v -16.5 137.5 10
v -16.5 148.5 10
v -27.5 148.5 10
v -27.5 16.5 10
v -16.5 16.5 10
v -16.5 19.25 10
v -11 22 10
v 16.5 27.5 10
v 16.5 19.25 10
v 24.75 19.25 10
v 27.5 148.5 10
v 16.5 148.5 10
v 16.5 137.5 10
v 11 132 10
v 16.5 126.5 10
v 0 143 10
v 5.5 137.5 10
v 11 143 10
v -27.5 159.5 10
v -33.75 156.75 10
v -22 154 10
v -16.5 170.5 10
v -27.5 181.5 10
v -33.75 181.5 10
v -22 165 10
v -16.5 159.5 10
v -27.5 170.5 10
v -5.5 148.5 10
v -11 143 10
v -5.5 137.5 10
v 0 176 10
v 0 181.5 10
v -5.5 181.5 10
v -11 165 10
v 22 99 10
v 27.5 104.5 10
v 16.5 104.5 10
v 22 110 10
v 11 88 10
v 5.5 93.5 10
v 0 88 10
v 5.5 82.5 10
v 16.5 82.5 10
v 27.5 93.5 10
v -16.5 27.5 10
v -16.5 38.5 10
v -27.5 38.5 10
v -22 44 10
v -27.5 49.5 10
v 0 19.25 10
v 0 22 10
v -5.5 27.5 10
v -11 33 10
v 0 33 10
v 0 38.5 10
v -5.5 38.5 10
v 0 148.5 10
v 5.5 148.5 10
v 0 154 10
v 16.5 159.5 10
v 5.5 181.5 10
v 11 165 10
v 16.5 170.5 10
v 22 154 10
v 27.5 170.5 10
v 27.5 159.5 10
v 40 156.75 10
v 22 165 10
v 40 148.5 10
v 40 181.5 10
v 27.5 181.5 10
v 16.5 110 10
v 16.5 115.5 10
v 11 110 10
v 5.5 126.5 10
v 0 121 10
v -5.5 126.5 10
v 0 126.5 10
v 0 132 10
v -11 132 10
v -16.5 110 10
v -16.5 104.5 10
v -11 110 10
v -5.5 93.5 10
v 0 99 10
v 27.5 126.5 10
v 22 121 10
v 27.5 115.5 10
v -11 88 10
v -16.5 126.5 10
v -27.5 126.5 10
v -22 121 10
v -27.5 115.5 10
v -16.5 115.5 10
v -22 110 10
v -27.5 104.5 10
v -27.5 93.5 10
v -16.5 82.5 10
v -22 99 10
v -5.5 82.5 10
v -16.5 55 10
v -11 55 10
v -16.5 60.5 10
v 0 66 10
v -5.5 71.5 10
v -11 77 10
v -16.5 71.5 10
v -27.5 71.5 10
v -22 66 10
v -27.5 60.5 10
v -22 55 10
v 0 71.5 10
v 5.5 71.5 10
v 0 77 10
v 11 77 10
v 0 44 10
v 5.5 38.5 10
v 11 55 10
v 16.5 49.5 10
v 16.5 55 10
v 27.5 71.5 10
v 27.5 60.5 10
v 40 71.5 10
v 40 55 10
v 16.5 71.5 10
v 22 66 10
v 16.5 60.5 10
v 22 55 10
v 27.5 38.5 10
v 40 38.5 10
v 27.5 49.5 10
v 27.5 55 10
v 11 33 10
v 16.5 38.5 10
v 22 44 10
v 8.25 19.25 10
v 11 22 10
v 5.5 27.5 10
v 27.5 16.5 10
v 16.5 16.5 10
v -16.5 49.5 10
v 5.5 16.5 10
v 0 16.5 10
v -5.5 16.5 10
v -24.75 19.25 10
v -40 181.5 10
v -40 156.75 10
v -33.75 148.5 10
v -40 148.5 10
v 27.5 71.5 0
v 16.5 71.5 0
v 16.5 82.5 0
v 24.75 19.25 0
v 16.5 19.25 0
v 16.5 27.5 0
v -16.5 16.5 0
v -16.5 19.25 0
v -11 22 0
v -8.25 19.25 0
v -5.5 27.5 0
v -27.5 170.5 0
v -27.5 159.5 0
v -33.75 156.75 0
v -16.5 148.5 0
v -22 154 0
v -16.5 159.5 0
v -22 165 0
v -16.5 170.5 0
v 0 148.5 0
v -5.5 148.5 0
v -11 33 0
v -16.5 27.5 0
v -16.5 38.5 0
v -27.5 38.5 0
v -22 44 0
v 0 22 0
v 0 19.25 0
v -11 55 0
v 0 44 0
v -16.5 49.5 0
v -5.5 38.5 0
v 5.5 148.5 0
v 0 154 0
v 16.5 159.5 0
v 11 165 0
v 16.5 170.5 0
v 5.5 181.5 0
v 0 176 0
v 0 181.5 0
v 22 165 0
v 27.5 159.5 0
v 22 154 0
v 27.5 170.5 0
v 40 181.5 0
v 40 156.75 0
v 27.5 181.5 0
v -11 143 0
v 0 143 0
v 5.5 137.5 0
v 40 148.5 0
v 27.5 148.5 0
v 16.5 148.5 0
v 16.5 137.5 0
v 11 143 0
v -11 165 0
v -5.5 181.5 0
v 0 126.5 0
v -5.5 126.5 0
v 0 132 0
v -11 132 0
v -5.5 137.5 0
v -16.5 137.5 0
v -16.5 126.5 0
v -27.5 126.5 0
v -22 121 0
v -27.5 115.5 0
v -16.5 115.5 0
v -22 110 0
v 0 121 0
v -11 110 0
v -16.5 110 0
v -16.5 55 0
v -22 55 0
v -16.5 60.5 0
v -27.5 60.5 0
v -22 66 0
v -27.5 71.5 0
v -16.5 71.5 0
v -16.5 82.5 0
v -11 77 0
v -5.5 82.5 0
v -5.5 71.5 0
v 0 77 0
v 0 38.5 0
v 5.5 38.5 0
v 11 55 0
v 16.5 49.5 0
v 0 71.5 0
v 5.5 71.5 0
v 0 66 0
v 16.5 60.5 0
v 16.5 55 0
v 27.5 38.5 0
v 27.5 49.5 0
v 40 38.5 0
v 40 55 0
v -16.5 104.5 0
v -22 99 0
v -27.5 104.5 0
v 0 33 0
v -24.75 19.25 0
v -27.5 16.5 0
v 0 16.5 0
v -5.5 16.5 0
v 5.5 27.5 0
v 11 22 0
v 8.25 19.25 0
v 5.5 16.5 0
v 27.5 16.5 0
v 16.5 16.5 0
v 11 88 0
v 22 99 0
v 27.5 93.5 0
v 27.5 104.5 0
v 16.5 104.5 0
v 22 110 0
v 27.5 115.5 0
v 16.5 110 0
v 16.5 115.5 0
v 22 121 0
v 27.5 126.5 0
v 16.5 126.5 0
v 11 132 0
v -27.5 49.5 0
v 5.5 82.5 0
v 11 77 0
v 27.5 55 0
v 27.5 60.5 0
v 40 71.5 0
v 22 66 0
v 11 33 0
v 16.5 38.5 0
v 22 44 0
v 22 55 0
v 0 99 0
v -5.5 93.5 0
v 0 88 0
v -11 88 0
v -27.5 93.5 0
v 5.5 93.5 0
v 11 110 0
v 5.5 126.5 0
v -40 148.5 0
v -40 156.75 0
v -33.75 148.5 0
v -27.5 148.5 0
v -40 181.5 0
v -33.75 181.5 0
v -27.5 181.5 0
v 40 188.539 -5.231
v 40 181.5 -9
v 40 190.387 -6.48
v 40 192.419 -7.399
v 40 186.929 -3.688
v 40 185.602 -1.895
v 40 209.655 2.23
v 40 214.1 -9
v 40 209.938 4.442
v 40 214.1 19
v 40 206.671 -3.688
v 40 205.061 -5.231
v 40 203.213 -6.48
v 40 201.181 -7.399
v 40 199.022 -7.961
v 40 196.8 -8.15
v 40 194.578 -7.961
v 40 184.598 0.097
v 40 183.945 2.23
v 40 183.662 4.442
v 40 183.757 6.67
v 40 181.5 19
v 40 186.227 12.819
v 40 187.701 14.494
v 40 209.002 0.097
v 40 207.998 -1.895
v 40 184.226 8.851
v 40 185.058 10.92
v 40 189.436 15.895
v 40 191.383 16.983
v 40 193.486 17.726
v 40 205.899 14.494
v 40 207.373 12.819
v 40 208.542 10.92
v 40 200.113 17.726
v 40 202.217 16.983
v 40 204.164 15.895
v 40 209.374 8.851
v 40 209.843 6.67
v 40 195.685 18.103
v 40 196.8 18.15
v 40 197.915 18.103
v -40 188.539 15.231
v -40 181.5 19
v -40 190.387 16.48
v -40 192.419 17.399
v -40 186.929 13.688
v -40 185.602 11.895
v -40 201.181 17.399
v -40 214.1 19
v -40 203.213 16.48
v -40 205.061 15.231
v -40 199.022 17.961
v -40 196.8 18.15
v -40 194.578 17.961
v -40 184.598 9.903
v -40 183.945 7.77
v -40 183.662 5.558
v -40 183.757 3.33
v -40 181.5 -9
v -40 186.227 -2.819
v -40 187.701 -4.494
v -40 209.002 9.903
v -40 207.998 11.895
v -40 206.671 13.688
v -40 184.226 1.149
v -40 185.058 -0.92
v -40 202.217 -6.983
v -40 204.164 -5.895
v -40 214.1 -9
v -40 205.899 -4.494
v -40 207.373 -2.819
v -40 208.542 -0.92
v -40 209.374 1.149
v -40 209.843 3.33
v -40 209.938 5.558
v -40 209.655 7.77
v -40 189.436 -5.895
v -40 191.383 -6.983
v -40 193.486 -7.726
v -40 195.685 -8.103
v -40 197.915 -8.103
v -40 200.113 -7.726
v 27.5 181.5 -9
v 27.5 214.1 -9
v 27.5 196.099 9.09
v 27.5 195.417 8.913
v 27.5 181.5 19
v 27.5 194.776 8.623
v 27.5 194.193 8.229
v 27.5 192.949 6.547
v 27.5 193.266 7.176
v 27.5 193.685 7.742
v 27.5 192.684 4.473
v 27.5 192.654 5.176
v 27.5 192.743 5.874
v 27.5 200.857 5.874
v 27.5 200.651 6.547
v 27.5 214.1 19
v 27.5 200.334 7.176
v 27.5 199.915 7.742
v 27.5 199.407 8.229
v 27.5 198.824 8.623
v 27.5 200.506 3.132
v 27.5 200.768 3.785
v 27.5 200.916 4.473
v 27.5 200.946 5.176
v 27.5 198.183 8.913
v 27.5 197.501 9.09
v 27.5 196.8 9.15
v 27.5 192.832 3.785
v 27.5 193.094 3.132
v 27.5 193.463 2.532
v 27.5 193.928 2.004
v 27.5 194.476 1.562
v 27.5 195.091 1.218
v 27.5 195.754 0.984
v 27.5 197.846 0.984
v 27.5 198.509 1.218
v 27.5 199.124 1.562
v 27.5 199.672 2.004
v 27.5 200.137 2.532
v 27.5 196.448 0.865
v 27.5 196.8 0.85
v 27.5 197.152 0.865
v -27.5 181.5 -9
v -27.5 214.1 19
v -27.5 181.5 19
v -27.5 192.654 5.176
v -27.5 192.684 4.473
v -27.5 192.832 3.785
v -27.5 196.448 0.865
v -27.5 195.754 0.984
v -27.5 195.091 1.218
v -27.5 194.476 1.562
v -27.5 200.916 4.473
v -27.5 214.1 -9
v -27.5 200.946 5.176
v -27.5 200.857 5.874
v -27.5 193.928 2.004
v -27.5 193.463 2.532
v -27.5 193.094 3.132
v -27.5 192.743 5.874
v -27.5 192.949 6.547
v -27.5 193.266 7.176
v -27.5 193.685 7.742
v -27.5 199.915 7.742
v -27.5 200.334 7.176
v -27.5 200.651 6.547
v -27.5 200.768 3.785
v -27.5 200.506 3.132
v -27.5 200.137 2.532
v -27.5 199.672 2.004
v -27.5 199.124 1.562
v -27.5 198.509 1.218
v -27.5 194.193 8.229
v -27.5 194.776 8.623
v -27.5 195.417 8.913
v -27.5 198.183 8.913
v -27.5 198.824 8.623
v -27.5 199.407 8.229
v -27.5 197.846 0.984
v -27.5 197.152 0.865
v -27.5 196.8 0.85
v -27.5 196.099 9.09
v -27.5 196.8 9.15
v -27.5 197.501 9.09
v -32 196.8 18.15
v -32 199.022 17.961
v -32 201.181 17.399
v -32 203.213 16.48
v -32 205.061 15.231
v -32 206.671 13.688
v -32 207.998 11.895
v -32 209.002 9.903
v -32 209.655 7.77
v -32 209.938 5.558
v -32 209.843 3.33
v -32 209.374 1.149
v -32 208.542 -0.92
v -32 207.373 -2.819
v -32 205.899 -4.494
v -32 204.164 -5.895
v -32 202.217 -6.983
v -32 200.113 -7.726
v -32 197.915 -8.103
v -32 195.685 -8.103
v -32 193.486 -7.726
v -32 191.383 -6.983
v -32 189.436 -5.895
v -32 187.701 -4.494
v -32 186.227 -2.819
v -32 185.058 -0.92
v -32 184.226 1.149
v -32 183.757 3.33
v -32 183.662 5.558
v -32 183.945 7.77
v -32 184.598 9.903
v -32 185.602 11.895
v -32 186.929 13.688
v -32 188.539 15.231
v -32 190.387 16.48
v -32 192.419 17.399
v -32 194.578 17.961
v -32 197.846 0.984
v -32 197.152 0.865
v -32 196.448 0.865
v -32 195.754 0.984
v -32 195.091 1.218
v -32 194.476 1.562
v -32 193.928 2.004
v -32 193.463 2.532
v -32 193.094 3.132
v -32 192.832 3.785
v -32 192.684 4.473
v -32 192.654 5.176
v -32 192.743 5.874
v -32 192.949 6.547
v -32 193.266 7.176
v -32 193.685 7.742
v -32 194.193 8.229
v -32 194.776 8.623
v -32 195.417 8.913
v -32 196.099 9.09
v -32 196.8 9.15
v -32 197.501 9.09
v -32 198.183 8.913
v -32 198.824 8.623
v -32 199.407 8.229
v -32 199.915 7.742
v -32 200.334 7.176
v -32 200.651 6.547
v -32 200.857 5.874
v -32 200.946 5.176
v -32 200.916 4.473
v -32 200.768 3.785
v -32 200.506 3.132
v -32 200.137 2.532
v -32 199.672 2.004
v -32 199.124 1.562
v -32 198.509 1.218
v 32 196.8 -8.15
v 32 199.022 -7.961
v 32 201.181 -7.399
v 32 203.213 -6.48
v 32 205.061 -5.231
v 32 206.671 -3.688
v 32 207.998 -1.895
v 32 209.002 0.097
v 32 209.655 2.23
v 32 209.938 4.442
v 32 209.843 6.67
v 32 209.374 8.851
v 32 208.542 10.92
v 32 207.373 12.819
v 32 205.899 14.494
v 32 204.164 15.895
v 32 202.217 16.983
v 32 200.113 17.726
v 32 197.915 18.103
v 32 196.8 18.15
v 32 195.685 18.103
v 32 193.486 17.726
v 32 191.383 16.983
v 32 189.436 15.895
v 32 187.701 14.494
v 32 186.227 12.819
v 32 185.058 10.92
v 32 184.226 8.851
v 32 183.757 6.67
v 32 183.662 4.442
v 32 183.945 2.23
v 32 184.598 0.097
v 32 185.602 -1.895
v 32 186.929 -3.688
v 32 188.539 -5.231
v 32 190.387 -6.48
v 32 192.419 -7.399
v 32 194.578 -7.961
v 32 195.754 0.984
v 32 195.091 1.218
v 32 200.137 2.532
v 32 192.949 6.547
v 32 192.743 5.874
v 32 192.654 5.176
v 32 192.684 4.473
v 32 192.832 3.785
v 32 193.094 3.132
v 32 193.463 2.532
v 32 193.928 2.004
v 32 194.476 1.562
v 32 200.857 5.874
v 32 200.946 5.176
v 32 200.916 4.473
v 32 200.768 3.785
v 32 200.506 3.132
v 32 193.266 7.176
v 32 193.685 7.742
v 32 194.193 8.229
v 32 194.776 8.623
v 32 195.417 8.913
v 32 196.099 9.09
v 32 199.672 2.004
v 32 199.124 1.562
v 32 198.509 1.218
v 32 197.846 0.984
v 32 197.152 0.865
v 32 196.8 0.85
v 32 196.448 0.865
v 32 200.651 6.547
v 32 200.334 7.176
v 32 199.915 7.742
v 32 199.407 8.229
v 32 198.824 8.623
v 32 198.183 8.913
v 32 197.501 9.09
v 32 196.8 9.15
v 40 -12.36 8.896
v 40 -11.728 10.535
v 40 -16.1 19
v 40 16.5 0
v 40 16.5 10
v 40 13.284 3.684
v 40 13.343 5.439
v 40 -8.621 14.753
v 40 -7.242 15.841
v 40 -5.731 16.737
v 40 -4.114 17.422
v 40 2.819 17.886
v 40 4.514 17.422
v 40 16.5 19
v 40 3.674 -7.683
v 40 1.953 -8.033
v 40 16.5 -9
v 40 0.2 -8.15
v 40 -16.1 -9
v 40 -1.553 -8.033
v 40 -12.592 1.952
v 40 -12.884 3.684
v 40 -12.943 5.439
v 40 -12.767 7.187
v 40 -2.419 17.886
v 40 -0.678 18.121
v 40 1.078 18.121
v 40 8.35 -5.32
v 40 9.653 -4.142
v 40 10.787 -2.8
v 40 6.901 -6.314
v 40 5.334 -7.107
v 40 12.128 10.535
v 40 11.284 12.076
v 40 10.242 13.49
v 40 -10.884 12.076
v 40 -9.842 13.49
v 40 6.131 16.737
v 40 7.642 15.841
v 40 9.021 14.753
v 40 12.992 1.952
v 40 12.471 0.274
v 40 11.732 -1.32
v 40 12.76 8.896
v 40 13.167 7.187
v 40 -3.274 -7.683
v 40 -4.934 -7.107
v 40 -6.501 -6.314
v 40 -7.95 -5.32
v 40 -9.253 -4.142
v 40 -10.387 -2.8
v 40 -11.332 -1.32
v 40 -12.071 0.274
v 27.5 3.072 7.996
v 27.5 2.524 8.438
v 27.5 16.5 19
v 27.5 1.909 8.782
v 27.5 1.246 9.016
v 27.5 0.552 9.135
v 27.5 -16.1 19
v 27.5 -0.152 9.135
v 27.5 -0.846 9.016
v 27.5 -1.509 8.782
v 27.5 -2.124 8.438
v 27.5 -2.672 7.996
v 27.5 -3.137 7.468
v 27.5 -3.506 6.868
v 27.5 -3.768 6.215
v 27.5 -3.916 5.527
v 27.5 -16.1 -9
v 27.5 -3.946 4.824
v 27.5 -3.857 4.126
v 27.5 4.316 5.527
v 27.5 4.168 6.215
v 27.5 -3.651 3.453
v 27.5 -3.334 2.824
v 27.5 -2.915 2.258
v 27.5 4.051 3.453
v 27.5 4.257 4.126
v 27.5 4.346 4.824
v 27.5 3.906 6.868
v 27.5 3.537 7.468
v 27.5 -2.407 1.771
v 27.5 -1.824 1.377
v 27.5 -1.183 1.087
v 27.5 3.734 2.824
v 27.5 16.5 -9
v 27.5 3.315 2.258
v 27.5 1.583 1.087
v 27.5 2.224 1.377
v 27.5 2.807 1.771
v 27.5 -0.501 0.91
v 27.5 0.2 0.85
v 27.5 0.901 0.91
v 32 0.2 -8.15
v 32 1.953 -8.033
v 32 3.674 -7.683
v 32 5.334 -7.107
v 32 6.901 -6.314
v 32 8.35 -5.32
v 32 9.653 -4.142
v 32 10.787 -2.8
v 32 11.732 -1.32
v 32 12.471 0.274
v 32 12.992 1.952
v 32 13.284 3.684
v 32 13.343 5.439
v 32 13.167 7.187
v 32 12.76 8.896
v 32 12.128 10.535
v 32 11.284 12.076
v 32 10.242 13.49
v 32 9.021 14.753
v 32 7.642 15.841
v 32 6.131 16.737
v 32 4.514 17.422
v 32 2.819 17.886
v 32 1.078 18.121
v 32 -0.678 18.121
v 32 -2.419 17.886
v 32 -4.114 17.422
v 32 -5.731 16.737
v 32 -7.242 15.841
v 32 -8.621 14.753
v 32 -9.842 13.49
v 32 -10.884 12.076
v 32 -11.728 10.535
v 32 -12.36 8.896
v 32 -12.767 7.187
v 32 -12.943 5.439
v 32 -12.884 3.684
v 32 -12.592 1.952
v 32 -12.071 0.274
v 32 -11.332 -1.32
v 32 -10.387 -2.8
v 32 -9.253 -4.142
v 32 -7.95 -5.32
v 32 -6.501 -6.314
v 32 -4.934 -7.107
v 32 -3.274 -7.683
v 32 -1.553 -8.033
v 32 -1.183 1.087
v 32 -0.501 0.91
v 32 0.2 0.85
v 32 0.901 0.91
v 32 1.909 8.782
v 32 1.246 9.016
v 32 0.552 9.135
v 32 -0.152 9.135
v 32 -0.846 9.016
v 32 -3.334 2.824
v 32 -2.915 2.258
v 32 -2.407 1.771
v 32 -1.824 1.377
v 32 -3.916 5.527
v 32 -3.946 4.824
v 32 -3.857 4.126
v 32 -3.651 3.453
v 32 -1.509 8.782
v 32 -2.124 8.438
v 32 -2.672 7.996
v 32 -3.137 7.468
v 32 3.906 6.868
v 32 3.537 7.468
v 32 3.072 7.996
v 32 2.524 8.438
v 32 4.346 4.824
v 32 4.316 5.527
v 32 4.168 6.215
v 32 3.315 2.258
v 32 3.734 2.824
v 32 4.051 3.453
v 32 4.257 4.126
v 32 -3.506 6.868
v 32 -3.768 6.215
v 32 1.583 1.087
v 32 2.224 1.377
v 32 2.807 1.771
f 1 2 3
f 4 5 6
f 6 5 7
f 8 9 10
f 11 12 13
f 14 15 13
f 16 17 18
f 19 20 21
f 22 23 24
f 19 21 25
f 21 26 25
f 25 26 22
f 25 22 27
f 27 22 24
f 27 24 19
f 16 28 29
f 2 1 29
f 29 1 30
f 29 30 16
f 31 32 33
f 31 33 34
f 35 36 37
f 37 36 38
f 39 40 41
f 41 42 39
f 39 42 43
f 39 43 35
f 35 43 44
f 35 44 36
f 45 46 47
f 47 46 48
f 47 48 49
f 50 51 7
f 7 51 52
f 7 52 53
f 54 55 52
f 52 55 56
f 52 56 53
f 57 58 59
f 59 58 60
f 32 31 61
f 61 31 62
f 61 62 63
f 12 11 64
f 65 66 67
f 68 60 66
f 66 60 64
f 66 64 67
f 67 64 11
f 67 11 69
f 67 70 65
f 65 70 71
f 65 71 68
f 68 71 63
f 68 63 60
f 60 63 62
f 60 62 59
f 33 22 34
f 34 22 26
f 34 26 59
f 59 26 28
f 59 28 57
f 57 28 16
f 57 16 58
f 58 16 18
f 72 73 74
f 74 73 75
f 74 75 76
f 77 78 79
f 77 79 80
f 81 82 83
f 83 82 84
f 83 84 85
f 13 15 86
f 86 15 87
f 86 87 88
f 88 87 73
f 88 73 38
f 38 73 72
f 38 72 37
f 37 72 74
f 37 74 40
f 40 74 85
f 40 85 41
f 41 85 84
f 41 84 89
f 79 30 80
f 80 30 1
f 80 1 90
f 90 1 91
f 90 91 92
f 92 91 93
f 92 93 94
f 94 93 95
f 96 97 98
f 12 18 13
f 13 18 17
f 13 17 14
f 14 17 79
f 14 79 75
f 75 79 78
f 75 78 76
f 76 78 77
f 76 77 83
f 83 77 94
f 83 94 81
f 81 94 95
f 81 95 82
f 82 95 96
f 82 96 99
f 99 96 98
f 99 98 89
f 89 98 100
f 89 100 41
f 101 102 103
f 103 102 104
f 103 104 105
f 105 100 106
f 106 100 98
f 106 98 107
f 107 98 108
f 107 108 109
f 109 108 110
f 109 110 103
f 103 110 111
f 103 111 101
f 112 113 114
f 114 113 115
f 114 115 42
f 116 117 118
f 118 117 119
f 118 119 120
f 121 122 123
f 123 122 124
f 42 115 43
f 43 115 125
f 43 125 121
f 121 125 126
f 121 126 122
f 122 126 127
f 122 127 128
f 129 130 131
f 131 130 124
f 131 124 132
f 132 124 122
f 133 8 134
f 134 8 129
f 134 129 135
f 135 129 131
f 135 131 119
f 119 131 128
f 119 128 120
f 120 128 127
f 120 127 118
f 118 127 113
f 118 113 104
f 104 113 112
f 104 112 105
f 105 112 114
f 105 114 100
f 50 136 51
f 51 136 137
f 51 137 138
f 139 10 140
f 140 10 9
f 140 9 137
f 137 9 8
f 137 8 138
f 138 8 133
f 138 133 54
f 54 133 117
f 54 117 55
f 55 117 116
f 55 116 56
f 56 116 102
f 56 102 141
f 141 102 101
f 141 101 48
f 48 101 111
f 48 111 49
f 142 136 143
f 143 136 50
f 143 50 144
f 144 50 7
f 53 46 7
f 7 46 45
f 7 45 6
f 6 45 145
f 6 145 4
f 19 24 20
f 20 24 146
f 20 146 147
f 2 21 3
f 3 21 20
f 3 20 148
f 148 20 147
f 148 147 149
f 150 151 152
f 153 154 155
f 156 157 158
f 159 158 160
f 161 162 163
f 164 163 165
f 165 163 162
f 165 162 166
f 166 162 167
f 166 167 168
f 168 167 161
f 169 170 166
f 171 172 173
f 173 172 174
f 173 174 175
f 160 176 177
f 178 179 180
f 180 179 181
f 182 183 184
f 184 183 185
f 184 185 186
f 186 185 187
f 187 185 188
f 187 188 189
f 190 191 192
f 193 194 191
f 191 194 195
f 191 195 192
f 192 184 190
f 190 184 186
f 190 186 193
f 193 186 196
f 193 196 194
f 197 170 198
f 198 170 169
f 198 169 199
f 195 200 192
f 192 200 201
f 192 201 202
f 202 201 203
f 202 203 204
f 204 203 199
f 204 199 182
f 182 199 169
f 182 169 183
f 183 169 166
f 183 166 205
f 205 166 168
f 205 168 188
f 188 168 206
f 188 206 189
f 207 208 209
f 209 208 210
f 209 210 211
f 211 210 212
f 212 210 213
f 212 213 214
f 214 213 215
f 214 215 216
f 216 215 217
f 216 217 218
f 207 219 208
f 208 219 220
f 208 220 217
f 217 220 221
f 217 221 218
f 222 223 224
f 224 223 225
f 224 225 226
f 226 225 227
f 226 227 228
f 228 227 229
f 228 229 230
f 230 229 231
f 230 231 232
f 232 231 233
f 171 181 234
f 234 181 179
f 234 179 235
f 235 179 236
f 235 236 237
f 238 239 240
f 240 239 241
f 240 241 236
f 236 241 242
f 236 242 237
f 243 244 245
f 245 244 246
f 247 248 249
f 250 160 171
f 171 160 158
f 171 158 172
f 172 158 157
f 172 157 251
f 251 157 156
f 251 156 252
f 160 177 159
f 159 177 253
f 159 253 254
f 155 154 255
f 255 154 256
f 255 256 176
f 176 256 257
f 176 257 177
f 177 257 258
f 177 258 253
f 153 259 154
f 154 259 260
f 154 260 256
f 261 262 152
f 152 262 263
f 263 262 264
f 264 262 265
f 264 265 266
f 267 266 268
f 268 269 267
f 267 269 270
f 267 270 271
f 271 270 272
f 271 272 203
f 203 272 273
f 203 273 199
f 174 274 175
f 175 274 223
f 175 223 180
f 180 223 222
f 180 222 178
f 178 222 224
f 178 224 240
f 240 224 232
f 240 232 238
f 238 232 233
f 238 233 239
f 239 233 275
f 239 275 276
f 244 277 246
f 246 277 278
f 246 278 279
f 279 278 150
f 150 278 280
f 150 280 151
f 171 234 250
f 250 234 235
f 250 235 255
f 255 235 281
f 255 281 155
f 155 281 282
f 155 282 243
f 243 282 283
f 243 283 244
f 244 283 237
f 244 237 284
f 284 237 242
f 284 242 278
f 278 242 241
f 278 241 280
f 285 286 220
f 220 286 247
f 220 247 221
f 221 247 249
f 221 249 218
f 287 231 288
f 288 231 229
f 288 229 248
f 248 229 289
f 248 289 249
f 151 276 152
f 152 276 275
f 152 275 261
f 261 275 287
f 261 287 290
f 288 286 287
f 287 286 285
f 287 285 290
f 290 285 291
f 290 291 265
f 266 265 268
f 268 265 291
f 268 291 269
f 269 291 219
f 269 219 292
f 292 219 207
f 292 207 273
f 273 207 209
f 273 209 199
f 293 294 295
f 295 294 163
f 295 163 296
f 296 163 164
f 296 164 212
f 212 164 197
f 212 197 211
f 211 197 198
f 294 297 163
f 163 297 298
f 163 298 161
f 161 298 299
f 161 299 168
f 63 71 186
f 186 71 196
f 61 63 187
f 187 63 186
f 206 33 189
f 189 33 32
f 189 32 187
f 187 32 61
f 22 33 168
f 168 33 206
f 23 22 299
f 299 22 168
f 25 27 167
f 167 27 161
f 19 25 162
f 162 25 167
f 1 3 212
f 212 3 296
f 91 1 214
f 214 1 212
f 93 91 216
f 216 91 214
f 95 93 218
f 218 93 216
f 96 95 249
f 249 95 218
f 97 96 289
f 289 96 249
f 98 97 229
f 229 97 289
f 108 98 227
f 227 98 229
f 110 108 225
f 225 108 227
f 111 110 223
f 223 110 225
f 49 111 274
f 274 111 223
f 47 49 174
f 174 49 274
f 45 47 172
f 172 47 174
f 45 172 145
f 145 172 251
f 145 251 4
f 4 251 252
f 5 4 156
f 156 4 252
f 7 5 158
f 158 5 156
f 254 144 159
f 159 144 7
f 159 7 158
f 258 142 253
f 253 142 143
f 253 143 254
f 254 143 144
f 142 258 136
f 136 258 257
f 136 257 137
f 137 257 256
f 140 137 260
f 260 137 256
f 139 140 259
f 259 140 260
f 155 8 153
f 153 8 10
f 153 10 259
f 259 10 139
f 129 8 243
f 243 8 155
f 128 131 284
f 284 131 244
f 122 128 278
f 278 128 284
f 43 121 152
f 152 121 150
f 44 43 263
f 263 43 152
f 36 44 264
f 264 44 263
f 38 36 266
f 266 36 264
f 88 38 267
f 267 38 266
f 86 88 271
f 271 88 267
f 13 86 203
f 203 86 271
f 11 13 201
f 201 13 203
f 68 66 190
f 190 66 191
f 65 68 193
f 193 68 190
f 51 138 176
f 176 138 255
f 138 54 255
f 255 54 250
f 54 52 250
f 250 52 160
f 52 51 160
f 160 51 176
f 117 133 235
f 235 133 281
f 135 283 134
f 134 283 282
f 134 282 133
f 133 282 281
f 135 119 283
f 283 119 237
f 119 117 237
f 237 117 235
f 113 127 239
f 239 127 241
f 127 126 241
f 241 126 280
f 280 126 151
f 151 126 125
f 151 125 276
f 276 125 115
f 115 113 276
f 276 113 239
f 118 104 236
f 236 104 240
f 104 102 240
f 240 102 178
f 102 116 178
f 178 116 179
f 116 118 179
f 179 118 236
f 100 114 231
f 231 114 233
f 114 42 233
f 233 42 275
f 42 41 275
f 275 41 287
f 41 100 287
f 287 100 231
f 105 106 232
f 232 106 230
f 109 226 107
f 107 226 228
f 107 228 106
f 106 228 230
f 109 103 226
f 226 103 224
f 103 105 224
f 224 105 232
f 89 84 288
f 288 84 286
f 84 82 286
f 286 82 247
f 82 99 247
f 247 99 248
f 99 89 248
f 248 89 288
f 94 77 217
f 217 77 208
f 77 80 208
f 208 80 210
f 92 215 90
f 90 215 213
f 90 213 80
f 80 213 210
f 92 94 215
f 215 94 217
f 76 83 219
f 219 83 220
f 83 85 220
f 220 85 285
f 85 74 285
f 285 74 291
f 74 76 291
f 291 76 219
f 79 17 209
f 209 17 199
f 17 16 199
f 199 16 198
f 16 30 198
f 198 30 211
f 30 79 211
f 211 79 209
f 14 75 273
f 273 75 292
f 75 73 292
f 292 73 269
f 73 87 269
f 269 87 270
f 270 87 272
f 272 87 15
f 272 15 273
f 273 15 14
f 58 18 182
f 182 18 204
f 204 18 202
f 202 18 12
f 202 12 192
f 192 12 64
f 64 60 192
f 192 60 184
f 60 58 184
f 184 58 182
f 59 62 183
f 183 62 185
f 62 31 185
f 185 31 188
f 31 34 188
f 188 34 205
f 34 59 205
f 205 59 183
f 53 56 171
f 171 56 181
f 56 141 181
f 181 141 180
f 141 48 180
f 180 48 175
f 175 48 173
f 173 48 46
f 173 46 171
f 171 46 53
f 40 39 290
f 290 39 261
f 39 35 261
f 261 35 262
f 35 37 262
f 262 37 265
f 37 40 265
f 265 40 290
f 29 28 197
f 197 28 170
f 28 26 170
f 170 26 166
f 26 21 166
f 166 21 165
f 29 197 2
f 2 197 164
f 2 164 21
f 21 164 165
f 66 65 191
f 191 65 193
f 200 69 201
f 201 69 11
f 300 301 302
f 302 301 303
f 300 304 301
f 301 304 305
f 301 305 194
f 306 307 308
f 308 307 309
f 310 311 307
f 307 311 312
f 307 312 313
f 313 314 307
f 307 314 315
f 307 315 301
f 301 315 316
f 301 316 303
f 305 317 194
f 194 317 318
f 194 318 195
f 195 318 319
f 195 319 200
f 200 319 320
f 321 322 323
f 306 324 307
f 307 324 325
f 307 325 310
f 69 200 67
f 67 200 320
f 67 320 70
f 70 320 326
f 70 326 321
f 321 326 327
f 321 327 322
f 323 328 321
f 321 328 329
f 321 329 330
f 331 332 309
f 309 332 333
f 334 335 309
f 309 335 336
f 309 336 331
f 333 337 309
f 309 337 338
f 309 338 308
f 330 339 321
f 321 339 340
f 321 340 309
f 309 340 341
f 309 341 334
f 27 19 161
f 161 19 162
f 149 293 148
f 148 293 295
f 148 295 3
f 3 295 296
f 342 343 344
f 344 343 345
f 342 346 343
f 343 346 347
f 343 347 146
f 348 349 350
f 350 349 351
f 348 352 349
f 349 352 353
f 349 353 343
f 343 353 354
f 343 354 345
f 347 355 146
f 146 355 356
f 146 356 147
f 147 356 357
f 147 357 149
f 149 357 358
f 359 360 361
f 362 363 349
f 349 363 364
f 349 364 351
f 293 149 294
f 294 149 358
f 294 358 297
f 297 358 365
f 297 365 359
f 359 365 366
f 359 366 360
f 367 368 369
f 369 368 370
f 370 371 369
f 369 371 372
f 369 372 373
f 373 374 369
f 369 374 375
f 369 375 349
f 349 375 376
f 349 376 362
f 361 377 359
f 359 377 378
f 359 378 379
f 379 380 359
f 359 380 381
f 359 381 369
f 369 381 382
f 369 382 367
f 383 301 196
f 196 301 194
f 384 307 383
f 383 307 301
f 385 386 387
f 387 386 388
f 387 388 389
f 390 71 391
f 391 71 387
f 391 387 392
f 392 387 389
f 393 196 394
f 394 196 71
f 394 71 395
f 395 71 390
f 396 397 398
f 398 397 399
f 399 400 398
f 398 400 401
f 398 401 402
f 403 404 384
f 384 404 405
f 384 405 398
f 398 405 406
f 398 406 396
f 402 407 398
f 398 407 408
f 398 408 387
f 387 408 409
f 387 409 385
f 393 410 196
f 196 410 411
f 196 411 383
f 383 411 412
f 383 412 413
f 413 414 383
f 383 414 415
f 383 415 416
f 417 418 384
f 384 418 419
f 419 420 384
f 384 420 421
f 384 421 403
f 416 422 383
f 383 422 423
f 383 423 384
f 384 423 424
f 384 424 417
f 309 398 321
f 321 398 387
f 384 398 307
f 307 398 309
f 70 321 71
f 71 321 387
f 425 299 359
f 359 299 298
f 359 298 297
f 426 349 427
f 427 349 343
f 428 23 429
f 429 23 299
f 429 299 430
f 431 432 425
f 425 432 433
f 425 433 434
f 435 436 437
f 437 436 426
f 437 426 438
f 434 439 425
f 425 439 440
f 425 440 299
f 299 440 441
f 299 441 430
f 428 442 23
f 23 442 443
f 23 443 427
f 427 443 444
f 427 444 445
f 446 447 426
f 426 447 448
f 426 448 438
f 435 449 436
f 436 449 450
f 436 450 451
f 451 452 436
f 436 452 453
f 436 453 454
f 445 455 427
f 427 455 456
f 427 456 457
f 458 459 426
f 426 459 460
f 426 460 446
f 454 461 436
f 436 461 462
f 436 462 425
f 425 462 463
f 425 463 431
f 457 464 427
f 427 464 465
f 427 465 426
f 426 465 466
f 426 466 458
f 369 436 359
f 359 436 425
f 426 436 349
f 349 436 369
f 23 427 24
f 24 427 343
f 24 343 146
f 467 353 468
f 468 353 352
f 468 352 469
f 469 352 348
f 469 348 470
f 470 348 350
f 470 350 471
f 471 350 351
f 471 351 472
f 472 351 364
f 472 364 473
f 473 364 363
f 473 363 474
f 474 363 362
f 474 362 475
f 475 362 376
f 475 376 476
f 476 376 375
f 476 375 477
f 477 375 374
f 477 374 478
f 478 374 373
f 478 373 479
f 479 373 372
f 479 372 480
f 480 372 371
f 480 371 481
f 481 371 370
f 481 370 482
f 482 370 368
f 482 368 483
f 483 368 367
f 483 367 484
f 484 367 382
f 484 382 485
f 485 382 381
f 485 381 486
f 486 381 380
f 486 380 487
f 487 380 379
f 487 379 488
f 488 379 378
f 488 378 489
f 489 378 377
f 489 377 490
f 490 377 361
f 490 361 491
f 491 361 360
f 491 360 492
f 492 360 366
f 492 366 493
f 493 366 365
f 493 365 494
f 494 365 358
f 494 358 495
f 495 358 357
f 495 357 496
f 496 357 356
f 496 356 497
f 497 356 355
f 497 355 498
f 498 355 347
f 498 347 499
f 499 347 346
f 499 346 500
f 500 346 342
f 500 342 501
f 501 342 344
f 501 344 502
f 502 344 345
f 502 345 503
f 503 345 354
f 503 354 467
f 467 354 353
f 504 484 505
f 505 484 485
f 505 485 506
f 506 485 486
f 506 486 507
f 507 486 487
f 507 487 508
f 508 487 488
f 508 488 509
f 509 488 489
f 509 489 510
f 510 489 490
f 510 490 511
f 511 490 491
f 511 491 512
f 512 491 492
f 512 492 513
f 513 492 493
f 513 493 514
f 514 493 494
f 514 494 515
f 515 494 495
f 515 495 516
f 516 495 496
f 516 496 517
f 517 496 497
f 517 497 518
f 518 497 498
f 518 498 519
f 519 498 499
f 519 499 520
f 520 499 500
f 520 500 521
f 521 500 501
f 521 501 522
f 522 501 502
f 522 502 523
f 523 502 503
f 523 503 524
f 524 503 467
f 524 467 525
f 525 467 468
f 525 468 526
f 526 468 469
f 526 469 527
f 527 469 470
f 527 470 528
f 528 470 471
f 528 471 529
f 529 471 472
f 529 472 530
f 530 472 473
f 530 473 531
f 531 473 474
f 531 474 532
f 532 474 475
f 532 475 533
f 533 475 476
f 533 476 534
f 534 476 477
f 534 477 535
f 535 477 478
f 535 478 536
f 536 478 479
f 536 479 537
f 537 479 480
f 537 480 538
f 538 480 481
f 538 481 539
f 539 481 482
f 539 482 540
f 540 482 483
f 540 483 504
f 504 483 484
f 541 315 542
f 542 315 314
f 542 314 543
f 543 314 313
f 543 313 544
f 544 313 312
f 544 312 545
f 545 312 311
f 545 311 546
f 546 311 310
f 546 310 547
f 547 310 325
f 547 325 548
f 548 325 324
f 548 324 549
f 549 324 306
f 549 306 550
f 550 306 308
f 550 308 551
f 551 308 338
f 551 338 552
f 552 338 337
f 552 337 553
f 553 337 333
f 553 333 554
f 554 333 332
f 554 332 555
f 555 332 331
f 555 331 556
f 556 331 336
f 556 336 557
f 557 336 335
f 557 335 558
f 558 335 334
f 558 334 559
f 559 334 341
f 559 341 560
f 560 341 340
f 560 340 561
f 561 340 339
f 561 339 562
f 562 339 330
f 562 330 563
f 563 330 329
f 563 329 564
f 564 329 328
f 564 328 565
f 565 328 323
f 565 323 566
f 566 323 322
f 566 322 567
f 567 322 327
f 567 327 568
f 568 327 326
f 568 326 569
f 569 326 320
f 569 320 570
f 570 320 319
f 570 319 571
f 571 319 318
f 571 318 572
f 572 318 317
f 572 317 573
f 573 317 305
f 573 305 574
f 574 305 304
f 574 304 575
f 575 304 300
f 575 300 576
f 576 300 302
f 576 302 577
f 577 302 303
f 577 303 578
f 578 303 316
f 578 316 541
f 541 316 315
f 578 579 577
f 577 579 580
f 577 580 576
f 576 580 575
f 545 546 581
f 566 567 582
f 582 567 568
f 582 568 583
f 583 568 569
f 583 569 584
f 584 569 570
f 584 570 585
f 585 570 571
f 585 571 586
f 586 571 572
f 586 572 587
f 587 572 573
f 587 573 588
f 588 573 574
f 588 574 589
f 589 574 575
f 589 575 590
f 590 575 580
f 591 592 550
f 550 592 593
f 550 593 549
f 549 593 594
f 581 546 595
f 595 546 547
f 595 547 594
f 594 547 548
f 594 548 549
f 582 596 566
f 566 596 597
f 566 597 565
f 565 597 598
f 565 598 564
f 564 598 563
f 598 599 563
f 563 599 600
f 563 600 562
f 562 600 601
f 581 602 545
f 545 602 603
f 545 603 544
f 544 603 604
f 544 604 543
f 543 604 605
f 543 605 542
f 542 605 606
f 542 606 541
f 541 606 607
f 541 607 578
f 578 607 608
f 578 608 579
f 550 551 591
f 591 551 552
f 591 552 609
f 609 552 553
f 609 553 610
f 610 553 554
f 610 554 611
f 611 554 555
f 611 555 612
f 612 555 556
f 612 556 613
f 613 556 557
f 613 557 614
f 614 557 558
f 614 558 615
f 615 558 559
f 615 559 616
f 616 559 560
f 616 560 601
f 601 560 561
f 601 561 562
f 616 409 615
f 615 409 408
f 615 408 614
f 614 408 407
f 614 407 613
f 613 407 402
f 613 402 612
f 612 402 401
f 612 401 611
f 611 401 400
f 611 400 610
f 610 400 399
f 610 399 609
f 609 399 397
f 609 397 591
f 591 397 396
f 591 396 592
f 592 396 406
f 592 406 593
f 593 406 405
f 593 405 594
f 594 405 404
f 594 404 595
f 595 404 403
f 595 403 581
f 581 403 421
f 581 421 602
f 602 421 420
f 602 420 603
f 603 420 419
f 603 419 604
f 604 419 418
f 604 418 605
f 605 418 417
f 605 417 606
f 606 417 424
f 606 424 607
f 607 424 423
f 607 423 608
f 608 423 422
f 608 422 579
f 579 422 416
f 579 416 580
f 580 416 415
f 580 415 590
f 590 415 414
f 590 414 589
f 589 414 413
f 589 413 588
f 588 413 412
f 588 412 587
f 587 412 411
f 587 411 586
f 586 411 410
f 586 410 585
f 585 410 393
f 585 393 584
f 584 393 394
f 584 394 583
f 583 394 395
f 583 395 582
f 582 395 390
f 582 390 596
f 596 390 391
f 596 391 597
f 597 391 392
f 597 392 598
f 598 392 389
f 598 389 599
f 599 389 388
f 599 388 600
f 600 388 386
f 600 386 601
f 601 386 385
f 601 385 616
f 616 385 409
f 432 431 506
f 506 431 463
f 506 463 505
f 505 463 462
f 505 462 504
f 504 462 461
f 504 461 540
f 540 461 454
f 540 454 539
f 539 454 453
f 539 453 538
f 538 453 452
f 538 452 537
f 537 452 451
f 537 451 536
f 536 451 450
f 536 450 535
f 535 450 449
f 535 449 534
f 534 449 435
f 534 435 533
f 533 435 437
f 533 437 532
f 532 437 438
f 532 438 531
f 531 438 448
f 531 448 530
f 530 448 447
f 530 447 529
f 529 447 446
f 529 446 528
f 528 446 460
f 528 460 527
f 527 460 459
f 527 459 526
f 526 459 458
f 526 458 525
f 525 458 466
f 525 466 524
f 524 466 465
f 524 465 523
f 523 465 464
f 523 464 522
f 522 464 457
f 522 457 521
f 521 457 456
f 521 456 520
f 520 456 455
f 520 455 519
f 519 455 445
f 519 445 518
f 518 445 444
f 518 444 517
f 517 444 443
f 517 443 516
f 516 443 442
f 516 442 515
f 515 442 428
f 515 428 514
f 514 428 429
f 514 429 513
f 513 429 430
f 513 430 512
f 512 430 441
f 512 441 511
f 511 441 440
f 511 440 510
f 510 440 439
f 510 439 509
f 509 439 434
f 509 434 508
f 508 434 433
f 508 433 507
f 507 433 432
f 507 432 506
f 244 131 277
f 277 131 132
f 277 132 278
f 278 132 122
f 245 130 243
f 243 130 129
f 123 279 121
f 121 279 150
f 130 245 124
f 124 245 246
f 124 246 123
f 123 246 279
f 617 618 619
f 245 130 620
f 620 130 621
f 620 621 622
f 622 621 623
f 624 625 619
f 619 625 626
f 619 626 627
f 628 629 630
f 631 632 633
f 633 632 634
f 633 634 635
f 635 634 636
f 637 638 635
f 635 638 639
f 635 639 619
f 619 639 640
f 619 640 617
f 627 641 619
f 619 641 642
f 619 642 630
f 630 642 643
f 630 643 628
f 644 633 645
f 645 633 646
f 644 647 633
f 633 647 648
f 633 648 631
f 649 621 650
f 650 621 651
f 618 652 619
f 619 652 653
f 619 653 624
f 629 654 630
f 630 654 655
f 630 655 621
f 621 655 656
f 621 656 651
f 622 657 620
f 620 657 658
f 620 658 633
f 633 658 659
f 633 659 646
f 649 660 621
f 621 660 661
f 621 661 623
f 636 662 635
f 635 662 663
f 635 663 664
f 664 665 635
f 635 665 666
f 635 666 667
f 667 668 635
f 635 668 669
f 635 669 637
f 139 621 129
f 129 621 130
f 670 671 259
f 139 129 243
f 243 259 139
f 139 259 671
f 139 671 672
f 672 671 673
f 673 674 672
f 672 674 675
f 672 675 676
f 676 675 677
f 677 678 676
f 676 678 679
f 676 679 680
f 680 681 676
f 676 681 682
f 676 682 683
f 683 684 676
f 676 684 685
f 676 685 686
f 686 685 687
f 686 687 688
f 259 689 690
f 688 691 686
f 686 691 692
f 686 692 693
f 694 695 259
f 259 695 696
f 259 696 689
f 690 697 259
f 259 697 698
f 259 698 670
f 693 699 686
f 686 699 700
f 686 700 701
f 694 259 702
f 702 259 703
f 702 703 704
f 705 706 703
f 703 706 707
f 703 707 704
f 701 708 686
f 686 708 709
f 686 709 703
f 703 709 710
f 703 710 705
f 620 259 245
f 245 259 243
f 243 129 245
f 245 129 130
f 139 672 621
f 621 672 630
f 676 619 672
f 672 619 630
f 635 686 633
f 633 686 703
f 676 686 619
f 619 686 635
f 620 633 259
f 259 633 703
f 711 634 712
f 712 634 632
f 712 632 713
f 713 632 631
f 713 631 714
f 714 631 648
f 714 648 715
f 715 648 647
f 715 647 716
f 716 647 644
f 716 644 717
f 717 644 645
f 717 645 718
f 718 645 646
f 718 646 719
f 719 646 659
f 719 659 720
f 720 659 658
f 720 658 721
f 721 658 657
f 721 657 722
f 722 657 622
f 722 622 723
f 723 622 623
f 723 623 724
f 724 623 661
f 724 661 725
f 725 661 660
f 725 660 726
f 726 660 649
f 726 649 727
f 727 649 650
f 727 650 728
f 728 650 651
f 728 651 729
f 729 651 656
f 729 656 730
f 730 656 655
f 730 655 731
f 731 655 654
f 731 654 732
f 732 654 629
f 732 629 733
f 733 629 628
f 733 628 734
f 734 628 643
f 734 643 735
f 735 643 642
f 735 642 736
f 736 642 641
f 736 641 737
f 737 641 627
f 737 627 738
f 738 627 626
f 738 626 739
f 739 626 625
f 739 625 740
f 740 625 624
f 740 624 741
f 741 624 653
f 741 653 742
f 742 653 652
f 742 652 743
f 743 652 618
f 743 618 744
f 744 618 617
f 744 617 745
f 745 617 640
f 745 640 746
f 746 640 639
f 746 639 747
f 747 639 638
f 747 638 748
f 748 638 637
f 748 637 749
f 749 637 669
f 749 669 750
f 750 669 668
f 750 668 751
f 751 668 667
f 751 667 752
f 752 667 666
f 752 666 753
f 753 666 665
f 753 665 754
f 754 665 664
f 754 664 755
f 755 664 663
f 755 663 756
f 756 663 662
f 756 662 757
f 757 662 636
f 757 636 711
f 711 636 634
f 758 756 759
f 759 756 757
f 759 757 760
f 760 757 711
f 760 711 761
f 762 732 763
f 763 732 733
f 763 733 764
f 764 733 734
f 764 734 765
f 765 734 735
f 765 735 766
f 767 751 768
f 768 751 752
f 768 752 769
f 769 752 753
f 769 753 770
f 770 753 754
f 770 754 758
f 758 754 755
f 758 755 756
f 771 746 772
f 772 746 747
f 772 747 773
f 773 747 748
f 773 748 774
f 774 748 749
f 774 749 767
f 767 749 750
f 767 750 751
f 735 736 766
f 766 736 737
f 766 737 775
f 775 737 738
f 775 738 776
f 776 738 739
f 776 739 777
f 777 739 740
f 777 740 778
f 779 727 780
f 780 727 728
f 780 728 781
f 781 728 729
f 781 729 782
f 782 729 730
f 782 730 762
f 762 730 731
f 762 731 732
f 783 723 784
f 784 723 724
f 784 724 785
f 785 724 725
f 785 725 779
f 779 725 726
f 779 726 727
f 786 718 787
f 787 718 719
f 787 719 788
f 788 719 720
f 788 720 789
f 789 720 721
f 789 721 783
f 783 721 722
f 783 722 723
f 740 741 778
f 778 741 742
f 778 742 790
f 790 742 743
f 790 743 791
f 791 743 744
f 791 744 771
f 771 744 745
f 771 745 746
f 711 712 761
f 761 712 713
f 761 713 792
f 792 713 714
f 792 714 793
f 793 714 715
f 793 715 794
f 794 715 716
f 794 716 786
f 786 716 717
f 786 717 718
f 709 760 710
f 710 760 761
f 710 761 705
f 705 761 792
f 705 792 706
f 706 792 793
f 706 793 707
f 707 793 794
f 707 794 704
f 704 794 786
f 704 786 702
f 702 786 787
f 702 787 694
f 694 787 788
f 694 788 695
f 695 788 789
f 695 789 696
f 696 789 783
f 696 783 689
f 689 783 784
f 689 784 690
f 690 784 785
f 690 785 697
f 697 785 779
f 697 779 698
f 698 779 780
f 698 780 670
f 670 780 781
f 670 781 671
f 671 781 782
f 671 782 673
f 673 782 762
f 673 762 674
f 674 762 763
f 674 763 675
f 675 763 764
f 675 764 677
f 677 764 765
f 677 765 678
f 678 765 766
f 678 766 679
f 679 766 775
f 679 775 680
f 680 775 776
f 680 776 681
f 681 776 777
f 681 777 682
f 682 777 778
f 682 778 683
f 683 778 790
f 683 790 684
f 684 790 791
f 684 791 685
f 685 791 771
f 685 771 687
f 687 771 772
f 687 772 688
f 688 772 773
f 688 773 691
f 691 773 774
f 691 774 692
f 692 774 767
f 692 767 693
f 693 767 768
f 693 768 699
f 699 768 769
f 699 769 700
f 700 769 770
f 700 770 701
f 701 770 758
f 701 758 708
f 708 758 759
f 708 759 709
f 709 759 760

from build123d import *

# Parameters (mm, degrees)
BOSS_EXTRUDE1_DEPTH  = 10
SKETCH3_W            = 10
SKETCH3_H            = 33.000000074
BOSS_EXTRUDE3_DEPTH  = 12.5
SKETCH4_W            = 12.5
SKETCH4_H            = 28
BOSS_EXTRUDE4_DEPTH  = 32.6
SKETCH6_R            = 13.15
CUT_EXTRUDE2_DEPTH   = 8
SKETCH7_R            = 4.15
CUT_EXTRUDE3_DEPTH   = 227.679972726
SKETCH8_W            = 10
SKETCH8_H            = 32.999999987
BOSS_EXTRUDE6_DEPTH  = 12.5
SKETCH9_W            = 12.5
SKETCH9_H            = 10
BOSS_EXTRUDE9_DEPTH  = 22
SKETCH10_W           = 12.5
SKETCH10_H           = 28
BOSS_EXTRUDE10_DEPTH = 32.6
SKETCH12_R           = 13.15
CUT_EXTRUDE4_DEPTH   = 8
SKETCH13_R           = 4.15
CUT_EXTRUDE5_DEPTH   = 8


with BuildPart() as part:
    # Sketch2 → Boss-Extrude1 (new body)
    with BuildSketch(Plane.XY):
        Polygon((-27.500000006, 170.499999994), (-27.500000006, 181.499999994), (-16.500000002, 170.499999998), (-5.499999969, 181.500000031), (5.500000025, 181.500000031), (16.500000011, 170.500000056), (27.500000013, 181.500000073), (27.500000013, 170.500000022), (22.000000007, 165.000000067), (27.500000013, 159.500000067), (27.500000013, 148.499999999), (16.500000017, 137.500000003), (27.500000013, 126.500000014), (27.500000013, 115.499999993), (22.000000001, 109.999999981), (27.500000013, 104.499999969), (27.500000013, 93.499999996), (16.500000007, 82.49999999), (27.500000013, 71.499999999), (27.500000013, 60.500000004), (22.000000008, 54.999999998), (27.500000013, 49.499999999), (27.500000013, 38.500000012), (16.499999997, 27.499999996), (27.5, 16.5), (16.500000019, 16.5), (11.000000008, 22.000000007), (5.500000001, 16.5), (-5.500000011, 16.5), (-11.000000001, 21.99999999), (-16.499999991, 16.5), (-27.5, 16.5), (-16.500000013, 27.500000002), (-27.500000006, 38.499999994), (-27.500000006, 49.499999994), (-22.000000004, 54.999999996), (-27.500000006, 60.499999994), (-27.500000006, 71.499999994), (-16.500000006, 82.500000002), (-27.500000006, 93.499999994), (-27.500000006, 104.499999994), (-22.000000034, 109.999999972), (-27.500000006, 115.499999994), (-27.500000006, 126.49999998), (-16.500000006, 137.499999995), (-27.500000006, 148.499999994), (-27.500000006, 159.499999994), (-22.000000006, 164.999999994), align=None)
        Polygon((21.999999977, 121.000000012), (16.499999976, 115.500000007), (5.499999998, 126.499999984), (11.000000002, 131.999999987), align=None, mode=Mode.SUBTRACT)
        Polygon((-22.000000007, 65.999999973), (-16.500000015, 60.499999985), (-5.499999998, 71.500000002), (-10.99999999, 76.99999999), align=None, mode=Mode.SUBTRACT)
        Polygon((-5.5e-08, 175.999999934), (10.999999921, 164.999999958), (-7e-09, 154.000000015), (-10.999999994, 164.999999995), align=None, mode=Mode.SUBTRACT)
        Polygon((21.999999912, 153.999999967), (10.999999987, 143.000000029), (5.4999999, 148.500000112), (16.499999884, 159.499999995), align=None, mode=Mode.SUBTRACT)
        Polygon((-22.000000014, 98.999999972), (-11.000000021, 87.999999991), (-5.500000115, 93.499999901), (-16.500000049, 104.499999937), align=None, mode=Mode.SUBTRACT)
        Polygon((-22.00000026, 121.000000206), (-16.50000003, 115.499999982), (-5.500000018, 126.500000007), (-11.000000188, 132.000000177), align=None, mode=Mode.SUBTRACT)
        Polygon((21.999999733, 65.999999799), (16.49999997, 60.50000003), (5.500000002, 71.499999986), (10.999999825, 76.999999808), align=None, mode=Mode.SUBTRACT)
        Polygon((-22.000000004, 153.999999986), (-11.000000013, 142.999999995), (-5.500000013, 148.500000002), (-16.5, 159.499999989), align=None, mode=Mode.SUBTRACT)
        Polygon((21.999999994, 98.999999994), (10.999999995, 87.999999995), (5.500000001, 93.499999981), (16.500000004, 104.499999985), align=None, mode=Mode.SUBTRACT)
        Polygon((-21.999999984, 43.999999999), (-11.00000001, 33.000000012), (-5.500000013, 38.500000017), (-16.499999993, 49.49999999), align=None, mode=Mode.SUBTRACT)
        Polygon((22.00000002, 44.000000003), (11.000000003, 32.999999986), (5.499999997, 38.499999988), (16.500000015, 49.500000005), align=None, mode=Mode.SUBTRACT)
        Polygon((10.999999982, 55.000000034), (-2.8e-08, 44.000000009), (-11.000000005, 54.999999978), (1.3e-08, 65.999999996), align=None, mode=Mode.SUBTRACT)
        Polygon((-11.000000013, 109.999999973), (-2.2e-08, 98.999999997), (10.999999981, 110.000000008), (2e-09, 120.999999987), align=None, mode=Mode.SUBTRACT)
        Polygon((-5.499999998, 27.499999993), (3e-09, 21.999999986), (5.500000014, 27.499999998), (9e-09, 32.999999999), align=None, mode=Mode.SUBTRACT)
        Polygon((5.499999842, 82.499999842), (-9e-09, 76.999999991), (-5.500000002, 82.499999978), (-1.23e-07, 87.999999858), align=None, mode=Mode.SUBTRACT)
        Polygon((-5.500000166, 137.500000148), (-2.4e-08, 132.000000006), (5.499999976, 137.500000013), (-1.37e-07, 143.000000126), align=None, mode=Mode.SUBTRACT)
    extrude(amount=BOSS_EXTRUDE1_DEPTH)

    # Sketch3 → Boss-Extrude3 (add)
    with BuildSketch(Plane(origin=(27.500000013, 0, 0), x_dir=(0, 0, -1), z_dir=(1, 0, 0))):
        with Locations((-5, 165.000000036)):
            Rectangle(SKETCH3_W, SKETCH3_H)
    boss_extrude3 = extrude(amount=BOSS_EXTRUDE3_DEPTH)

    # Mirror1: Boss-Extrude3 across plane
    add(boss_extrude3.mirror(Plane(origin=(0, 0, 0), x_dir=(0, 0, 1), z_dir=(1, 0, 0))))

    # Sketch4 → Boss-Extrude4 (add)
    with BuildSketch(Plane(origin=(0, 181.500000073, 0), x_dir=(1, 0, 0), z_dir=(0, 1, 0))):
        with Locations((33.750000013, -5)):
            Rectangle(SKETCH4_W, SKETCH4_H)
    boss_extrude4 = extrude(amount=BOSS_EXTRUDE4_DEPTH)

    # Mirror2: Boss-Extrude4 across plane
    add(boss_extrude4.mirror(Plane(origin=(0, 0, 0), x_dir=(0, 0, 1), z_dir=(1, 0, 0))))

    # Sketch6 → Cut-Extrude2 (cut)
    with BuildSketch(Plane.ZY.offset(40.000000013)):
        with Locations((5, 196.800000073)):
            Circle(SKETCH6_R)
    cut_extrude2 = extrude(amount=-CUT_EXTRUDE2_DEPTH, mode=Mode.SUBTRACT)

    # Mirror3: Cut-Extrude2 across plane
    add(cut_extrude2.mirror(Plane(origin=(0, 0, 0), x_dir=(0, 0, 1), z_dir=(1, 0, 0))), mode=Mode.SUBTRACT)

    # Sketch7 → Cut-Extrude3 (cut, through all)
    with BuildSketch(Plane.ZY.offset(32.000000013)):
        with Locations((5, 196.800000073)):
            Circle(SKETCH7_R)
    extrude(amount=-CUT_EXTRUDE3_DEPTH, mode=Mode.SUBTRACT)

    # Sketch8 → Boss-Extrude6 (add)
    with BuildSketch(Plane(origin=(27.500000013, 0, 0), x_dir=(0, 0, -1), z_dir=(1, 0, 0))):
        with Locations((-5, 55.000000006)):
            Rectangle(SKETCH8_W, SKETCH8_H)
    extrude(amount=BOSS_EXTRUDE6_DEPTH)


with BuildPart() as body_2:
    # Sketch9 → Boss-Extrude9 (new body)
    with BuildSketch(Plane.XZ.offset(-38.500000012)):
        with Locations((33.750000013, 5)):
            Rectangle(SKETCH9_W, SKETCH9_H)
    extrude(amount=BOSS_EXTRUDE9_DEPTH)

    # Sketch10 → Boss-Extrude10 (add)
    with BuildSketch(Plane.XZ.offset(-16.500000012)):
        with Locations((33.750000013, 5)):
            Rectangle(SKETCH10_W, SKETCH10_H)
    extrude(amount=BOSS_EXTRUDE10_DEPTH)

    # Sketch12 → Cut-Extrude4 (cut)
    with BuildSketch(Plane(origin=(40.000000013, 0, 0), x_dir=(0, 0, -1), z_dir=(1, 0, 0))):
        with Locations((-5, 0.200000012)):
            Circle(SKETCH12_R)
    extrude(amount=-CUT_EXTRUDE4_DEPTH, mode=Mode.SUBTRACT)

    # Sketch13 → Cut-Extrude5 (cut)
    with BuildSketch(Plane(origin=(32.000000013, 0, 0), x_dir=(0, 0, -1), z_dir=(1, 0, 0))):
        with Locations((-5, 0.200000012)):
            Circle(SKETCH13_R)
    extrude(amount=-CUT_EXTRUDE5_DEPTH, mode=Mode.SUBTRACT)


solid = Compound([part.part, body_2.part])
